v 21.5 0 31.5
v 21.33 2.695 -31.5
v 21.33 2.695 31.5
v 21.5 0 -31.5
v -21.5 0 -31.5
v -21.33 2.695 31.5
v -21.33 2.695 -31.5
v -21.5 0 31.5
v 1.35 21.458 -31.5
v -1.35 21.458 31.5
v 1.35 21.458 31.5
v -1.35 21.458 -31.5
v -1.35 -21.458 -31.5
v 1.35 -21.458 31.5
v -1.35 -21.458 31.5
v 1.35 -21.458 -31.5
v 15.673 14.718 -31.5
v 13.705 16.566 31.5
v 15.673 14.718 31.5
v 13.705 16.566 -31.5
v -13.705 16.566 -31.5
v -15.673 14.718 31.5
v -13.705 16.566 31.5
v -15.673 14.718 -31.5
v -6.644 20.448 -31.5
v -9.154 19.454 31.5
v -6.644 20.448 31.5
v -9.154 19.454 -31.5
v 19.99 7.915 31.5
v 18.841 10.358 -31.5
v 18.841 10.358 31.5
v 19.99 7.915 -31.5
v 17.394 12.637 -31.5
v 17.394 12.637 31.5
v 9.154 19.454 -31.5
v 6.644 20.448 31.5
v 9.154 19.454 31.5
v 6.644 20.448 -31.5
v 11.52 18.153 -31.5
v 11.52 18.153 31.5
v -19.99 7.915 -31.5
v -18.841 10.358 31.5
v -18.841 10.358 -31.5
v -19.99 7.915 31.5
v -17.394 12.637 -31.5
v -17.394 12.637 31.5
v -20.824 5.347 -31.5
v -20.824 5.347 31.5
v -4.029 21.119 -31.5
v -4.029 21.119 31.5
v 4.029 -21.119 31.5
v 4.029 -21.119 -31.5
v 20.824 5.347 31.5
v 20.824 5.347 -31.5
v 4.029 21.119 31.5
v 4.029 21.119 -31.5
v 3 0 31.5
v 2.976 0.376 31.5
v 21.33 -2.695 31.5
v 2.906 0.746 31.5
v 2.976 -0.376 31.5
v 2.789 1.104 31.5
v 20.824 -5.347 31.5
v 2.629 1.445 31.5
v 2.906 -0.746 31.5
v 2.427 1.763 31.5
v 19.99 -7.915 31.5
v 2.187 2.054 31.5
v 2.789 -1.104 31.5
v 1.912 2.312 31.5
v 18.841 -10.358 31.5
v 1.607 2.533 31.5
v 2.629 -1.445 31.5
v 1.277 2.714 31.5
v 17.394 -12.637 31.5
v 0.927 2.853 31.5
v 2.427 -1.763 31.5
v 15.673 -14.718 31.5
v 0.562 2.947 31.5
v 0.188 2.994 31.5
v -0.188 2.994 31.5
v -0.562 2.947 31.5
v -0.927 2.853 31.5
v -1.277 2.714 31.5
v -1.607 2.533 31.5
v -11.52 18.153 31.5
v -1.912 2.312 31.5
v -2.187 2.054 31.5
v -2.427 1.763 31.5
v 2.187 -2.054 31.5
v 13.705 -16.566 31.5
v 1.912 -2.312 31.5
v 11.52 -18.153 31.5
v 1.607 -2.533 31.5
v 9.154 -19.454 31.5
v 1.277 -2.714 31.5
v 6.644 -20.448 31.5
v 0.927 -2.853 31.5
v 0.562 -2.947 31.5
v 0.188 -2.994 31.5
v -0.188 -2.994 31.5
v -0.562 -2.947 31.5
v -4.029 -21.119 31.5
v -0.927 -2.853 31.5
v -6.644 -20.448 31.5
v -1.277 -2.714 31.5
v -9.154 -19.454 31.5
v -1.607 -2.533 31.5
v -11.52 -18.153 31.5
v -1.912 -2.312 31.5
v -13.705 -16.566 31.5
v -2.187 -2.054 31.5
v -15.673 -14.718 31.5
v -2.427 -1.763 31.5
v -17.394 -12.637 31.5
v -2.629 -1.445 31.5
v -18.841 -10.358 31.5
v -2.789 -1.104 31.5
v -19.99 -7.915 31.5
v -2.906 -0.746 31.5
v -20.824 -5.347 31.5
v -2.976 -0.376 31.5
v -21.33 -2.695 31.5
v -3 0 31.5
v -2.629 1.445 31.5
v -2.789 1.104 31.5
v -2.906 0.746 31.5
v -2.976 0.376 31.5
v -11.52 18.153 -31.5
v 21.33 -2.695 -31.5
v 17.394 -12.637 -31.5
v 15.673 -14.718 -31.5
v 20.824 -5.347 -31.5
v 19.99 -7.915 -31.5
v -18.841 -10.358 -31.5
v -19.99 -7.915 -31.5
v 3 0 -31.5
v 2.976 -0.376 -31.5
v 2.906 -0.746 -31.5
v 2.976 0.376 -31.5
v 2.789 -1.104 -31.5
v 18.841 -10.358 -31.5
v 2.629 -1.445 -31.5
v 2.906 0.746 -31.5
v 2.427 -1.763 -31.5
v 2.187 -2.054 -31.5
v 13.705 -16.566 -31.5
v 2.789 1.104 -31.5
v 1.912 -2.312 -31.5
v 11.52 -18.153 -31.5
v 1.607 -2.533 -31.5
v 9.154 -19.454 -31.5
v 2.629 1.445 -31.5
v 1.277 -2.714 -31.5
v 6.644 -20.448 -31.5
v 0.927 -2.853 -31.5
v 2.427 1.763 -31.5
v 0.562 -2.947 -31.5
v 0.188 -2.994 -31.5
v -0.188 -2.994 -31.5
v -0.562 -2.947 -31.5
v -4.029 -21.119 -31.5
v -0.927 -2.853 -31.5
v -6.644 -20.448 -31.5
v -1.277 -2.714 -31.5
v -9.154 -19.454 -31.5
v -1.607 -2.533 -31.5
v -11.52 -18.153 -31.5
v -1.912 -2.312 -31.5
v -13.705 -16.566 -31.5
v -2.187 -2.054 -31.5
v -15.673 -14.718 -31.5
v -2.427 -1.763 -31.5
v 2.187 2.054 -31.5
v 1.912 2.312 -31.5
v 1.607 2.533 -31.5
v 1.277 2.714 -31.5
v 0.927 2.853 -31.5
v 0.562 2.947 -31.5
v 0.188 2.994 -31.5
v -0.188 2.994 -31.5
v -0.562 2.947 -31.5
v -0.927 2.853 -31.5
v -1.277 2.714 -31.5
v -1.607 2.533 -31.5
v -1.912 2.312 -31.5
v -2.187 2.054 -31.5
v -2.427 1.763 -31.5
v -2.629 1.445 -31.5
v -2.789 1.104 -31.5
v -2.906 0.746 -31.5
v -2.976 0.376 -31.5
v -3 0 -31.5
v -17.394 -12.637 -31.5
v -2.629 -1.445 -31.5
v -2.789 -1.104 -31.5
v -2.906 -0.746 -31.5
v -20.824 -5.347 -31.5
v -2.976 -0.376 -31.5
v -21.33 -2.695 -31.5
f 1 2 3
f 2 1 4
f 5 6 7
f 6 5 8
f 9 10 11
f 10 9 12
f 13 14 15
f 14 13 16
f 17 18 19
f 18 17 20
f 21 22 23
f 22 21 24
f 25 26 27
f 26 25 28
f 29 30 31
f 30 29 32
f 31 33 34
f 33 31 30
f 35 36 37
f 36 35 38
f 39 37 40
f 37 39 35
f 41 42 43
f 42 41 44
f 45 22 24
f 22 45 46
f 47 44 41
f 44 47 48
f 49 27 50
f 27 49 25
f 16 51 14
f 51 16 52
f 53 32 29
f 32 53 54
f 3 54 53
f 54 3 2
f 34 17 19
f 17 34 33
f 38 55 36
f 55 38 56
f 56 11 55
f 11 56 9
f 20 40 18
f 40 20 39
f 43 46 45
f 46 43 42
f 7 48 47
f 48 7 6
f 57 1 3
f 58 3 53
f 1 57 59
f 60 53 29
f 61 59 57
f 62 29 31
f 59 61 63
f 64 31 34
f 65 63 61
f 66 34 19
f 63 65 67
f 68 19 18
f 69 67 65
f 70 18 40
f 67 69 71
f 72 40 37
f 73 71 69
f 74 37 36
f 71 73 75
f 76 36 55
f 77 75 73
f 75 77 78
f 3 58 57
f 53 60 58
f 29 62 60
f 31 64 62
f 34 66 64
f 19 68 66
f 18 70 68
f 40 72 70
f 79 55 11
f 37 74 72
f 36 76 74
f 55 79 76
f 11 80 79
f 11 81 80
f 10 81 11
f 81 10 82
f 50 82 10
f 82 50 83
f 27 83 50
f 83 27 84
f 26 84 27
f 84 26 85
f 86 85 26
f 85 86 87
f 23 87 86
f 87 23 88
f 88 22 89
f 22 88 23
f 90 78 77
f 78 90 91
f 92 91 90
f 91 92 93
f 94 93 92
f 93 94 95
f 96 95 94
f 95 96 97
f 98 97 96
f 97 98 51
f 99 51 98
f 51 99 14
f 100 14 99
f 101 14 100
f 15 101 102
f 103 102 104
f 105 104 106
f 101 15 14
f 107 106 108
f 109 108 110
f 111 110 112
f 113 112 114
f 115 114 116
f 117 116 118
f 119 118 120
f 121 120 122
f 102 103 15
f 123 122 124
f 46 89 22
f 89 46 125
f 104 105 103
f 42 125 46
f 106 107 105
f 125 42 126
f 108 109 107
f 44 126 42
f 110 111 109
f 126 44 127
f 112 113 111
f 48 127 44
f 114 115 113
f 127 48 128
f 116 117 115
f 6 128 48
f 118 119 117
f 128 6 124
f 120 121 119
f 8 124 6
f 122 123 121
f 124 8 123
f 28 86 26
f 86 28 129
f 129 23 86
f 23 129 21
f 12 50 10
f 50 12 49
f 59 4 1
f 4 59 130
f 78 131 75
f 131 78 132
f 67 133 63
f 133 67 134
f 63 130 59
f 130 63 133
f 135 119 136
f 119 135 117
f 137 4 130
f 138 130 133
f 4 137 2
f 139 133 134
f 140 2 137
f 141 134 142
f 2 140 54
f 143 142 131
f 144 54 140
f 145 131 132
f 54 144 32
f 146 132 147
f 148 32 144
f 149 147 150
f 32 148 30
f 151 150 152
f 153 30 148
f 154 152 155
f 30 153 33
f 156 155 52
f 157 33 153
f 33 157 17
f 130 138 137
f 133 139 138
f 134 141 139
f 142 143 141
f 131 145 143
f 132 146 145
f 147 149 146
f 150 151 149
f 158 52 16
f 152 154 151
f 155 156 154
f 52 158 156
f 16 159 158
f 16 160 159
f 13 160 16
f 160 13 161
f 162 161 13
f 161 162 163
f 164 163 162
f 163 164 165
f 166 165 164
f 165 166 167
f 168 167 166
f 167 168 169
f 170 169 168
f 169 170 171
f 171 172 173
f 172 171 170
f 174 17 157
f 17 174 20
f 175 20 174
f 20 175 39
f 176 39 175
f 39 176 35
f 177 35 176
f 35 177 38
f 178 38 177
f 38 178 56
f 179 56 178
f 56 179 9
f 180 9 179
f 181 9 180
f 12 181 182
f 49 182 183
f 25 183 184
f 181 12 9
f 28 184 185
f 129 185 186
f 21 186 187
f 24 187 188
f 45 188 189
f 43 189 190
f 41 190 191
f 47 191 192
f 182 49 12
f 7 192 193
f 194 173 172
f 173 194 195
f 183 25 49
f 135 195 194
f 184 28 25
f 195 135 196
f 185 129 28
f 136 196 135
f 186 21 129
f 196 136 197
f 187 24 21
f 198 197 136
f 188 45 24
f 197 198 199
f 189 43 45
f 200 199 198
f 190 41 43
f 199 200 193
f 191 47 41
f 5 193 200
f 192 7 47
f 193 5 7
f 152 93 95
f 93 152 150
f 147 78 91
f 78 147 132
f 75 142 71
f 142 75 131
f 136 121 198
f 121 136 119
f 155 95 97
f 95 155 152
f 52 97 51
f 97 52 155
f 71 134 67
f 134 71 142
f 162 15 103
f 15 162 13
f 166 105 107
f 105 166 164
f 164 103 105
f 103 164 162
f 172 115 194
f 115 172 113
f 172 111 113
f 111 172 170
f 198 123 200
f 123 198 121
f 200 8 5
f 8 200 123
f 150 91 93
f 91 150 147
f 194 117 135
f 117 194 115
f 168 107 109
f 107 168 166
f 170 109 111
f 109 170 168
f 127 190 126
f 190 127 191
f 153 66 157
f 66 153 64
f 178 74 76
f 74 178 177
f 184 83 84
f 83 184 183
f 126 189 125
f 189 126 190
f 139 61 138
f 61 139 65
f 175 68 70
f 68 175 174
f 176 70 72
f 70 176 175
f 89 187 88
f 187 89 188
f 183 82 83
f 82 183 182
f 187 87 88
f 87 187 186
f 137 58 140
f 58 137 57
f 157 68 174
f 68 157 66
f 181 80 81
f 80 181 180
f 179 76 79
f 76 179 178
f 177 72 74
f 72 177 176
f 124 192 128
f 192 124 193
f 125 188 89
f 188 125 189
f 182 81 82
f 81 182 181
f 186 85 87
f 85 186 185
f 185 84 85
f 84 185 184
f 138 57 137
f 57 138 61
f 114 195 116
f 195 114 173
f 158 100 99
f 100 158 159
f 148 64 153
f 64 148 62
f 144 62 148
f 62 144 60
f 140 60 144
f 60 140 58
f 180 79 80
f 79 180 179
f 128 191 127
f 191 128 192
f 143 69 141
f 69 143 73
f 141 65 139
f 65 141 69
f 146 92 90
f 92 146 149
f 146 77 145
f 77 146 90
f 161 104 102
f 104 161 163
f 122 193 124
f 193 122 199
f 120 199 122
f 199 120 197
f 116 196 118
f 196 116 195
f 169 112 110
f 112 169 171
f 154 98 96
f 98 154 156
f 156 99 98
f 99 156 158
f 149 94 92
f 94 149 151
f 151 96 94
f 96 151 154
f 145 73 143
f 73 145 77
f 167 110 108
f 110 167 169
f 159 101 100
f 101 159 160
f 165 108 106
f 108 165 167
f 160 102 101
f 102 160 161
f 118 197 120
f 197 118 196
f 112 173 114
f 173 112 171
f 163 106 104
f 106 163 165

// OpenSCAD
$fn = 50;


difference() {
	union() {
		translate(v = [0, 0, -31.5000000000]) {
			cylinder(h = 63, r = 21.5000000000);
		}
	}
	union() {
		translate(v = [0, 0, -100.0000000000]) {
			cylinder(h = 200, r = 3);
		}
	}
}
